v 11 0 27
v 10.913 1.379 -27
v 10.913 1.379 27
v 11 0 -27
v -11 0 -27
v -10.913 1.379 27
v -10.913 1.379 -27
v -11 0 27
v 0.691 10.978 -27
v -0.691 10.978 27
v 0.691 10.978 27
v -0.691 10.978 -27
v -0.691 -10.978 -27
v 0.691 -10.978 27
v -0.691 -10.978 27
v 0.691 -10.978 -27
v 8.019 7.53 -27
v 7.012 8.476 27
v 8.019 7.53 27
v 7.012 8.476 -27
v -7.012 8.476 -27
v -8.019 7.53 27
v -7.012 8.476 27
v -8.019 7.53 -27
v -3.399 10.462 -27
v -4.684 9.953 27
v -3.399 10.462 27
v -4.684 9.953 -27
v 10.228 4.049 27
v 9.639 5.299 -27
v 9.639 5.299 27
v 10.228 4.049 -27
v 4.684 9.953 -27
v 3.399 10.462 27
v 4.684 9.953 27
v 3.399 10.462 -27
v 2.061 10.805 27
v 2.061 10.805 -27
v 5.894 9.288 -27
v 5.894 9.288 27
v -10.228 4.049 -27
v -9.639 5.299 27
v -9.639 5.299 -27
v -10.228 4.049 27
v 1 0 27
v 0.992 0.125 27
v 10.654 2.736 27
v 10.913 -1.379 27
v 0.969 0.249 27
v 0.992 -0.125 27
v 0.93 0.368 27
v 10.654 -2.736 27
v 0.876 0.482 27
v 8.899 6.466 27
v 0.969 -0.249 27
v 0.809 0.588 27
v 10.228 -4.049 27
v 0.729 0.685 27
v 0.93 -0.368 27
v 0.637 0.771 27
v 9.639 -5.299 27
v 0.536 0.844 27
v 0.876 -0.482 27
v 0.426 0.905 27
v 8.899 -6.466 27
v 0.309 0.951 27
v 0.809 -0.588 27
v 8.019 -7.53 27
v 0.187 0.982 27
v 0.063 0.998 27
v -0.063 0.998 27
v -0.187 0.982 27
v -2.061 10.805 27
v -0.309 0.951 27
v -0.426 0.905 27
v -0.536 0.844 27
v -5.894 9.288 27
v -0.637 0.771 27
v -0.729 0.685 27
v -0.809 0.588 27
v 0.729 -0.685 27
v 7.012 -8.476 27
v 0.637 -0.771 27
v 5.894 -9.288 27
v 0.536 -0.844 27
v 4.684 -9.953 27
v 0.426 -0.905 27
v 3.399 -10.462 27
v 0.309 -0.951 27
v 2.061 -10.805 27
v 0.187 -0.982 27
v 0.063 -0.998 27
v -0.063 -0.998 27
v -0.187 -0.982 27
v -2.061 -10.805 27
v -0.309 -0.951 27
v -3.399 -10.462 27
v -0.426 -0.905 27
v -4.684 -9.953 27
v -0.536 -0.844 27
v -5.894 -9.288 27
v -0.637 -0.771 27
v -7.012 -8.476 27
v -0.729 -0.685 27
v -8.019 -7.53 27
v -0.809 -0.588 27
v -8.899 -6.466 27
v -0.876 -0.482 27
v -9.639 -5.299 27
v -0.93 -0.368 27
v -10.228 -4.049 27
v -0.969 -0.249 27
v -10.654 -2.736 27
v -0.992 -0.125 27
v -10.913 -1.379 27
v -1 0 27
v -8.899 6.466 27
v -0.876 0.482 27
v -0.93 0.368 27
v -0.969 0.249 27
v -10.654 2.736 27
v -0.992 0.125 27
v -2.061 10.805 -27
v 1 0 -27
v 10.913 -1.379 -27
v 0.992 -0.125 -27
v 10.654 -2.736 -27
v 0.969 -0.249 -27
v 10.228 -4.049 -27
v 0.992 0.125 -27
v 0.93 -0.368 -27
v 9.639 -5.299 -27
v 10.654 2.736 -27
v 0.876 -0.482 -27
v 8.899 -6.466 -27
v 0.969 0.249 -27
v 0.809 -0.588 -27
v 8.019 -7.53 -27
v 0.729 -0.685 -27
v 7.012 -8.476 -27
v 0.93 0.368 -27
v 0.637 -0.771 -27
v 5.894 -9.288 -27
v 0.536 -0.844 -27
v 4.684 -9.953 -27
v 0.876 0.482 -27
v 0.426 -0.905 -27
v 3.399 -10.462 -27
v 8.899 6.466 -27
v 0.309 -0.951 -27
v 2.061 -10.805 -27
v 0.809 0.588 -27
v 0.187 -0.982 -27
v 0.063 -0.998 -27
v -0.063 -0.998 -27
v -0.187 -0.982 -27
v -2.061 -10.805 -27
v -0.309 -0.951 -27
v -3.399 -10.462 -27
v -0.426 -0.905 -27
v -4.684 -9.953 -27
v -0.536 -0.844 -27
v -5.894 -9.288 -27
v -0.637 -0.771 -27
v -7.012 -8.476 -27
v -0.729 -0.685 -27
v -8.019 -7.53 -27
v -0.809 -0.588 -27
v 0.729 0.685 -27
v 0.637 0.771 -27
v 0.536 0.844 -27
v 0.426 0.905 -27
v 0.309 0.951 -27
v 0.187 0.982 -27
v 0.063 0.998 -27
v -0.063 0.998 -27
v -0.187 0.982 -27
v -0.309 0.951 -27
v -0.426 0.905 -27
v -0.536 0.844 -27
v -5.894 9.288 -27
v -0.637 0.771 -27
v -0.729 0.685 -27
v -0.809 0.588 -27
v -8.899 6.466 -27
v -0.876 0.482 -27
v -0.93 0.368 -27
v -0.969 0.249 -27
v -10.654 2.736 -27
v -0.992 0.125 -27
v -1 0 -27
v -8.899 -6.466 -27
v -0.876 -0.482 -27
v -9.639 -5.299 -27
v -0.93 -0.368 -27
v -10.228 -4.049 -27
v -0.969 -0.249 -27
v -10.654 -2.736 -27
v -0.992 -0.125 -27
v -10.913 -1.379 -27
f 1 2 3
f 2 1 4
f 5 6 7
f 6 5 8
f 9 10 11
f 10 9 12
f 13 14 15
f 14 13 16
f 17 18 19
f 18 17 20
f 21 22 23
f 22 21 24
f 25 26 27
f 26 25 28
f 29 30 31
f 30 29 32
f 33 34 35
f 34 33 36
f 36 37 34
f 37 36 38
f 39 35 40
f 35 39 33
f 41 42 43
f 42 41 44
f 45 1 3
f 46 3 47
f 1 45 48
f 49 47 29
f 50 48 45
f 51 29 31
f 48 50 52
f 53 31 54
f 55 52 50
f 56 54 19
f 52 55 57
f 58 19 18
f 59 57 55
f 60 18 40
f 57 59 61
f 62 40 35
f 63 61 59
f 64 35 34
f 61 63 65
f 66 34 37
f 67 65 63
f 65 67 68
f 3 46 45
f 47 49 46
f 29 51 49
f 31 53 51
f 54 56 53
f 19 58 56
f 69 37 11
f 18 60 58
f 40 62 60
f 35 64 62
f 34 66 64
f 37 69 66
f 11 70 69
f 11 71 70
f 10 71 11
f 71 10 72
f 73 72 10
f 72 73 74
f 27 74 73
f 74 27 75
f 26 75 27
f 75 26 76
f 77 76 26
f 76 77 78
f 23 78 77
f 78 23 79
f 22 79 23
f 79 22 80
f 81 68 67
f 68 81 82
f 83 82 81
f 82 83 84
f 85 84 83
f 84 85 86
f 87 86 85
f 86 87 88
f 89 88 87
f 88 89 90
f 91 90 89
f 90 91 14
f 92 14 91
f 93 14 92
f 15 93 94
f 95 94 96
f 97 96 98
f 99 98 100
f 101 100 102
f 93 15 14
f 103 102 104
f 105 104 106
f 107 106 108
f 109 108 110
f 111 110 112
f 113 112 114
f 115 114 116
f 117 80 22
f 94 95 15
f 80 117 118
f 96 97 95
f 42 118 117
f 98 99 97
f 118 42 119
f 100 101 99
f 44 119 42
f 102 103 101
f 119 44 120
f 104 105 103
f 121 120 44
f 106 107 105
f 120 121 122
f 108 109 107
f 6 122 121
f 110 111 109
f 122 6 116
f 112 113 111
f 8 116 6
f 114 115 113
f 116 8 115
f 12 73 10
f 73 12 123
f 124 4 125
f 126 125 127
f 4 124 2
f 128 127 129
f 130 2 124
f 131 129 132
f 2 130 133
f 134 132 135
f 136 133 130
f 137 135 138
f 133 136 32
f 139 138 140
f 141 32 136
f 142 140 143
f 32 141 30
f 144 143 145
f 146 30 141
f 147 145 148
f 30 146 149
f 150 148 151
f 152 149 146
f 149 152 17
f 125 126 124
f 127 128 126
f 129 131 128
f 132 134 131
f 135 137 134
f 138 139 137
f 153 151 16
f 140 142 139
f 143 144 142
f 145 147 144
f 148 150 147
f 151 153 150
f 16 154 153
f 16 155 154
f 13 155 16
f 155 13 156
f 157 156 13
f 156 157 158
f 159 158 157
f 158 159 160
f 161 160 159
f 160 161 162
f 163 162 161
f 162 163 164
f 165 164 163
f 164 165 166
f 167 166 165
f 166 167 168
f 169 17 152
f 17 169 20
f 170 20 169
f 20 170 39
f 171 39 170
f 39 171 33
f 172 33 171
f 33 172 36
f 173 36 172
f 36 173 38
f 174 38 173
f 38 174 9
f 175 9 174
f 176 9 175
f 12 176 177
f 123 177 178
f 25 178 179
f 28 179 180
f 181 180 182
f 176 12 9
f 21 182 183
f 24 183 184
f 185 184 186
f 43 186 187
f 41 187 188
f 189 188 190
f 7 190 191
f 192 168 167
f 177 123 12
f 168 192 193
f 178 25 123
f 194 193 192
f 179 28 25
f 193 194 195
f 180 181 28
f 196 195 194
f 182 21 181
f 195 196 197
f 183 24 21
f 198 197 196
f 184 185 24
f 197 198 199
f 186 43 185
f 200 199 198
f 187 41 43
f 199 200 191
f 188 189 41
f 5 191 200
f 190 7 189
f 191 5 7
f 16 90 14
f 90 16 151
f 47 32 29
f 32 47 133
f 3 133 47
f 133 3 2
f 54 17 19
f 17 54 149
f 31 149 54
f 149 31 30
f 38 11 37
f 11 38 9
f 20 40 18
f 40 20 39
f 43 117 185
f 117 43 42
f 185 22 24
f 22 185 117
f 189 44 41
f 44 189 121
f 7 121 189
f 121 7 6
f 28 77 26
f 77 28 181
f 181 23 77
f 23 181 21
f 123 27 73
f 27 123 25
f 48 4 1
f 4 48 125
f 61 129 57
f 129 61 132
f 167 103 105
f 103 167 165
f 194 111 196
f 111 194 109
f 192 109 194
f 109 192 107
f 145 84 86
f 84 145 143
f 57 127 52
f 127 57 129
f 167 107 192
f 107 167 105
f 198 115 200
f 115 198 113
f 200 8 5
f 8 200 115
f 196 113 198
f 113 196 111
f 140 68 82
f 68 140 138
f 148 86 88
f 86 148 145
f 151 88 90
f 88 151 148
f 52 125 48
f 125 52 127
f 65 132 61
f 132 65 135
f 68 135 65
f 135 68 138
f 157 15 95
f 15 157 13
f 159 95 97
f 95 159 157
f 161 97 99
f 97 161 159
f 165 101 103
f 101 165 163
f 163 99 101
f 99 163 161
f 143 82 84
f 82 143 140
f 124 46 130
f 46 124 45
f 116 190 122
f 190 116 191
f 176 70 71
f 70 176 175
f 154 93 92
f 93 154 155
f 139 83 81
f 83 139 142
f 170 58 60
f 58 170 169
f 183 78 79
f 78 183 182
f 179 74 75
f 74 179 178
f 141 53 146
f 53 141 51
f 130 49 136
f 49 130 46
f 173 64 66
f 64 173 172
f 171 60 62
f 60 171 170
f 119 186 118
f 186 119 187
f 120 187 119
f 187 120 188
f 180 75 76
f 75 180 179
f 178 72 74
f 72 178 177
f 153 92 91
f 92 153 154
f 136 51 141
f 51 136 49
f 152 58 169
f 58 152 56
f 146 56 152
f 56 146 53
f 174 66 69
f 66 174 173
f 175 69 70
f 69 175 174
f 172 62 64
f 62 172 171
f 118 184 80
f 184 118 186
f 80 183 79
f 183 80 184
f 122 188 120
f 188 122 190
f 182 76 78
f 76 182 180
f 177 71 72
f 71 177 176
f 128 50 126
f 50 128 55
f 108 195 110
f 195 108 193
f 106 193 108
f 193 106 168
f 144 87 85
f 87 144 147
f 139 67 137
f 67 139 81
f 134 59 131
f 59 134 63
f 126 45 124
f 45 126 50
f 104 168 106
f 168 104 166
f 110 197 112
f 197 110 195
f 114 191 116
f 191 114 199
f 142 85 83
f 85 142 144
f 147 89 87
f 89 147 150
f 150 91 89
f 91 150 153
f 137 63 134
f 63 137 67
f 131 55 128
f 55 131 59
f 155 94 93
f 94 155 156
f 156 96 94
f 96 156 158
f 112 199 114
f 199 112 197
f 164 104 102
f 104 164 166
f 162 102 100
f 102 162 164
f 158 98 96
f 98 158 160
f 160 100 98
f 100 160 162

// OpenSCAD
$fn = 50;


difference() {
	union() {
		translate(v = [0, 0, -27.0000000000]) {
			cylinder(h = 54, r = 11.0000000000);
		}
	}
	union() {
		translate(v = [0, 0, -100.0000000000]) {
			cylinder(h = 200, r = 1.0000000000);
		}
	}
}
